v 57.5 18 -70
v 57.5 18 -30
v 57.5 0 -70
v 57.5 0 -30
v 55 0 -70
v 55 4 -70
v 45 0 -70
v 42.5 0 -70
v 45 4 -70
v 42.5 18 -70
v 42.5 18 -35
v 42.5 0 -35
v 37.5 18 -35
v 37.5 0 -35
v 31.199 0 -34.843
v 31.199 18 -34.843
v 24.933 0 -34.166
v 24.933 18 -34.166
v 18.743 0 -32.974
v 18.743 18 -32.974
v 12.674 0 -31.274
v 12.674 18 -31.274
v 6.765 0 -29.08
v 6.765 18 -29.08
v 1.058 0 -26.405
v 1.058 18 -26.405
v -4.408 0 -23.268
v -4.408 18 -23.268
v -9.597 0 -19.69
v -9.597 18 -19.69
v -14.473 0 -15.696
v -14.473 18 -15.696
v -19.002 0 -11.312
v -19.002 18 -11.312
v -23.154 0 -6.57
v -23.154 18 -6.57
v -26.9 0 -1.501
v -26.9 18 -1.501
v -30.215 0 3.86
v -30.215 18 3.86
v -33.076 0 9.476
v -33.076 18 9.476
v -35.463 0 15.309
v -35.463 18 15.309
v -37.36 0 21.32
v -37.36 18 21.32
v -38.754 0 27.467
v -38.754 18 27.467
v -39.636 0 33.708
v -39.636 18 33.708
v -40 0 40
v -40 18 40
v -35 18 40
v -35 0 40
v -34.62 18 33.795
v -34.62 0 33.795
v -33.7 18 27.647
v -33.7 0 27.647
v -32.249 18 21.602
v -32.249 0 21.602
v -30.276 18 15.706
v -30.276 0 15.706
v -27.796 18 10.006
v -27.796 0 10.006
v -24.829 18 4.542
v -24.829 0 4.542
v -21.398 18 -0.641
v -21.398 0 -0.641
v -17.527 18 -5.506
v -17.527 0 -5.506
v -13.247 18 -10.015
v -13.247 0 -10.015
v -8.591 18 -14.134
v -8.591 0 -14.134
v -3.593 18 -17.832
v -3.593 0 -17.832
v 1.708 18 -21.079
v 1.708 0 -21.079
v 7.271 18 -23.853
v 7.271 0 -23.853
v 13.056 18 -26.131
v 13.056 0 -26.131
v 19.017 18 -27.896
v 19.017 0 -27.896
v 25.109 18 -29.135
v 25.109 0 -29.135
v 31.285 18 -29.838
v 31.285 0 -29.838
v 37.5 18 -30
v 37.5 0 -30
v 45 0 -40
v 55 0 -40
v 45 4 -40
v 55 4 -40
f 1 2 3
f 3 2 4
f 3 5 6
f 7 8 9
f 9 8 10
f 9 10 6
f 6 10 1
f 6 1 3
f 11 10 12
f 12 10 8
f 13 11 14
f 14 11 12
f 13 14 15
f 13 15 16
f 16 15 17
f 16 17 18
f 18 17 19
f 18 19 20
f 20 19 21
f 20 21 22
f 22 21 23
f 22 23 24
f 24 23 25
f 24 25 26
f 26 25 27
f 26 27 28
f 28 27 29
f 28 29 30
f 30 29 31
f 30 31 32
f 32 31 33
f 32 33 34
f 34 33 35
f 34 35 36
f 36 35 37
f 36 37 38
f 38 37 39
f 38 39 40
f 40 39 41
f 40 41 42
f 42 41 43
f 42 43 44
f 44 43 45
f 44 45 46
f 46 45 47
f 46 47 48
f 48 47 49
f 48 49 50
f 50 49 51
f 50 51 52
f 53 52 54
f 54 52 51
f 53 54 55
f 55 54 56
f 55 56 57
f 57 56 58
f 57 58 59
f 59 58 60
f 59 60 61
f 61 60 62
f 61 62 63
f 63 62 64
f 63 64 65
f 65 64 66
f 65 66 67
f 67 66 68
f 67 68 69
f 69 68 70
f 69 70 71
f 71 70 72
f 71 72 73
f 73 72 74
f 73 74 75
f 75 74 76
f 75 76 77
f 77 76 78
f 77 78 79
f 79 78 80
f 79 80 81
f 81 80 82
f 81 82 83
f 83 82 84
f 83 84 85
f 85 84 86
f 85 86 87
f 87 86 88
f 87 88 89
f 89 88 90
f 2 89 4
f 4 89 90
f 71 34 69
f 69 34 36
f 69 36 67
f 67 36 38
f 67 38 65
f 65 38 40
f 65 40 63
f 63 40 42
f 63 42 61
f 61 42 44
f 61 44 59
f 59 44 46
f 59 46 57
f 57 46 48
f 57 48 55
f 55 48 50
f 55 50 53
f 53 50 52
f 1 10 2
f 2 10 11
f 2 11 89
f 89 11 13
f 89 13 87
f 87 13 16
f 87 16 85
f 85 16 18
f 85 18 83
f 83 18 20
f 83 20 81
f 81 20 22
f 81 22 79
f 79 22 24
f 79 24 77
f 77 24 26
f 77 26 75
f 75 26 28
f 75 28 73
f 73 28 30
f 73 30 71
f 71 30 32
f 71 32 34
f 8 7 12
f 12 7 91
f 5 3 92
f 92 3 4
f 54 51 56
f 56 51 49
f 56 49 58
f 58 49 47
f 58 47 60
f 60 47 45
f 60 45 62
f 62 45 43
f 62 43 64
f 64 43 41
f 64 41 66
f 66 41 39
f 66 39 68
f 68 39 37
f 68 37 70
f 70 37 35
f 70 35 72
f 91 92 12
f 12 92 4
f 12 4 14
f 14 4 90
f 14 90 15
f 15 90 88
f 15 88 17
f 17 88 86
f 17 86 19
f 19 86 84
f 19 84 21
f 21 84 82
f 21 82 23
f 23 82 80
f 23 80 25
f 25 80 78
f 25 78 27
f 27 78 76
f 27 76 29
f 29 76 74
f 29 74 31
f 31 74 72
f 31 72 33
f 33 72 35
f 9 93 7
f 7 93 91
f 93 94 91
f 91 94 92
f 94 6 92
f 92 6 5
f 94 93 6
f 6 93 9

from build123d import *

# Parameters (mm, degrees)
BOSS_EXTRUDE1_DEPTH = 18
CUT_EXTRUDE1_DEPTH  = 4


with BuildPart() as part:
    # Sketch1 → Boss-Extrude1 (new body)
    with BuildSketch(Plane(origin=(0, 0, 0), x_dir=(1, 0, 0), z_dir=(0, 1, 0))):
        with BuildLine():
            Line((47.5, 30), (57.5, 30))
            Line((57.5, 30), (57.5, 70))
            Line((57.5, 70), (42.5, 70))
            Line((42.5, 70), (42.5, 35))
            Line((42.5, 35), (37.5, 35))
            ThreePointArc((37.5, 35), (-16.783008589, 13.550775542), (-40, -40))
            Line((-40, -40), (-35, -40))
            ThreePointArc((-35, -40), (-13.247474683, 10.015241636), (37.5, 30))
            Line((37.5, 30), (47.5, 30))
        make_face()
    extrude(amount=BOSS_EXTRUDE1_DEPTH)

    # Sketch4 → Cut-Extrude1 (cut)
    with BuildSketch(Plane(origin=(0, 0, 0), x_dir=(-1, 0, 0), z_dir=(0, -1, 0))):
        Polygon((-50, 70), (-45, 70), (-45, 40), (-55, 40), (-55, 70), align=None)
    extrude(amount=-CUT_EXTRUDE1_DEPTH, mode=Mode.SUBTRACT)


solid = part.part
